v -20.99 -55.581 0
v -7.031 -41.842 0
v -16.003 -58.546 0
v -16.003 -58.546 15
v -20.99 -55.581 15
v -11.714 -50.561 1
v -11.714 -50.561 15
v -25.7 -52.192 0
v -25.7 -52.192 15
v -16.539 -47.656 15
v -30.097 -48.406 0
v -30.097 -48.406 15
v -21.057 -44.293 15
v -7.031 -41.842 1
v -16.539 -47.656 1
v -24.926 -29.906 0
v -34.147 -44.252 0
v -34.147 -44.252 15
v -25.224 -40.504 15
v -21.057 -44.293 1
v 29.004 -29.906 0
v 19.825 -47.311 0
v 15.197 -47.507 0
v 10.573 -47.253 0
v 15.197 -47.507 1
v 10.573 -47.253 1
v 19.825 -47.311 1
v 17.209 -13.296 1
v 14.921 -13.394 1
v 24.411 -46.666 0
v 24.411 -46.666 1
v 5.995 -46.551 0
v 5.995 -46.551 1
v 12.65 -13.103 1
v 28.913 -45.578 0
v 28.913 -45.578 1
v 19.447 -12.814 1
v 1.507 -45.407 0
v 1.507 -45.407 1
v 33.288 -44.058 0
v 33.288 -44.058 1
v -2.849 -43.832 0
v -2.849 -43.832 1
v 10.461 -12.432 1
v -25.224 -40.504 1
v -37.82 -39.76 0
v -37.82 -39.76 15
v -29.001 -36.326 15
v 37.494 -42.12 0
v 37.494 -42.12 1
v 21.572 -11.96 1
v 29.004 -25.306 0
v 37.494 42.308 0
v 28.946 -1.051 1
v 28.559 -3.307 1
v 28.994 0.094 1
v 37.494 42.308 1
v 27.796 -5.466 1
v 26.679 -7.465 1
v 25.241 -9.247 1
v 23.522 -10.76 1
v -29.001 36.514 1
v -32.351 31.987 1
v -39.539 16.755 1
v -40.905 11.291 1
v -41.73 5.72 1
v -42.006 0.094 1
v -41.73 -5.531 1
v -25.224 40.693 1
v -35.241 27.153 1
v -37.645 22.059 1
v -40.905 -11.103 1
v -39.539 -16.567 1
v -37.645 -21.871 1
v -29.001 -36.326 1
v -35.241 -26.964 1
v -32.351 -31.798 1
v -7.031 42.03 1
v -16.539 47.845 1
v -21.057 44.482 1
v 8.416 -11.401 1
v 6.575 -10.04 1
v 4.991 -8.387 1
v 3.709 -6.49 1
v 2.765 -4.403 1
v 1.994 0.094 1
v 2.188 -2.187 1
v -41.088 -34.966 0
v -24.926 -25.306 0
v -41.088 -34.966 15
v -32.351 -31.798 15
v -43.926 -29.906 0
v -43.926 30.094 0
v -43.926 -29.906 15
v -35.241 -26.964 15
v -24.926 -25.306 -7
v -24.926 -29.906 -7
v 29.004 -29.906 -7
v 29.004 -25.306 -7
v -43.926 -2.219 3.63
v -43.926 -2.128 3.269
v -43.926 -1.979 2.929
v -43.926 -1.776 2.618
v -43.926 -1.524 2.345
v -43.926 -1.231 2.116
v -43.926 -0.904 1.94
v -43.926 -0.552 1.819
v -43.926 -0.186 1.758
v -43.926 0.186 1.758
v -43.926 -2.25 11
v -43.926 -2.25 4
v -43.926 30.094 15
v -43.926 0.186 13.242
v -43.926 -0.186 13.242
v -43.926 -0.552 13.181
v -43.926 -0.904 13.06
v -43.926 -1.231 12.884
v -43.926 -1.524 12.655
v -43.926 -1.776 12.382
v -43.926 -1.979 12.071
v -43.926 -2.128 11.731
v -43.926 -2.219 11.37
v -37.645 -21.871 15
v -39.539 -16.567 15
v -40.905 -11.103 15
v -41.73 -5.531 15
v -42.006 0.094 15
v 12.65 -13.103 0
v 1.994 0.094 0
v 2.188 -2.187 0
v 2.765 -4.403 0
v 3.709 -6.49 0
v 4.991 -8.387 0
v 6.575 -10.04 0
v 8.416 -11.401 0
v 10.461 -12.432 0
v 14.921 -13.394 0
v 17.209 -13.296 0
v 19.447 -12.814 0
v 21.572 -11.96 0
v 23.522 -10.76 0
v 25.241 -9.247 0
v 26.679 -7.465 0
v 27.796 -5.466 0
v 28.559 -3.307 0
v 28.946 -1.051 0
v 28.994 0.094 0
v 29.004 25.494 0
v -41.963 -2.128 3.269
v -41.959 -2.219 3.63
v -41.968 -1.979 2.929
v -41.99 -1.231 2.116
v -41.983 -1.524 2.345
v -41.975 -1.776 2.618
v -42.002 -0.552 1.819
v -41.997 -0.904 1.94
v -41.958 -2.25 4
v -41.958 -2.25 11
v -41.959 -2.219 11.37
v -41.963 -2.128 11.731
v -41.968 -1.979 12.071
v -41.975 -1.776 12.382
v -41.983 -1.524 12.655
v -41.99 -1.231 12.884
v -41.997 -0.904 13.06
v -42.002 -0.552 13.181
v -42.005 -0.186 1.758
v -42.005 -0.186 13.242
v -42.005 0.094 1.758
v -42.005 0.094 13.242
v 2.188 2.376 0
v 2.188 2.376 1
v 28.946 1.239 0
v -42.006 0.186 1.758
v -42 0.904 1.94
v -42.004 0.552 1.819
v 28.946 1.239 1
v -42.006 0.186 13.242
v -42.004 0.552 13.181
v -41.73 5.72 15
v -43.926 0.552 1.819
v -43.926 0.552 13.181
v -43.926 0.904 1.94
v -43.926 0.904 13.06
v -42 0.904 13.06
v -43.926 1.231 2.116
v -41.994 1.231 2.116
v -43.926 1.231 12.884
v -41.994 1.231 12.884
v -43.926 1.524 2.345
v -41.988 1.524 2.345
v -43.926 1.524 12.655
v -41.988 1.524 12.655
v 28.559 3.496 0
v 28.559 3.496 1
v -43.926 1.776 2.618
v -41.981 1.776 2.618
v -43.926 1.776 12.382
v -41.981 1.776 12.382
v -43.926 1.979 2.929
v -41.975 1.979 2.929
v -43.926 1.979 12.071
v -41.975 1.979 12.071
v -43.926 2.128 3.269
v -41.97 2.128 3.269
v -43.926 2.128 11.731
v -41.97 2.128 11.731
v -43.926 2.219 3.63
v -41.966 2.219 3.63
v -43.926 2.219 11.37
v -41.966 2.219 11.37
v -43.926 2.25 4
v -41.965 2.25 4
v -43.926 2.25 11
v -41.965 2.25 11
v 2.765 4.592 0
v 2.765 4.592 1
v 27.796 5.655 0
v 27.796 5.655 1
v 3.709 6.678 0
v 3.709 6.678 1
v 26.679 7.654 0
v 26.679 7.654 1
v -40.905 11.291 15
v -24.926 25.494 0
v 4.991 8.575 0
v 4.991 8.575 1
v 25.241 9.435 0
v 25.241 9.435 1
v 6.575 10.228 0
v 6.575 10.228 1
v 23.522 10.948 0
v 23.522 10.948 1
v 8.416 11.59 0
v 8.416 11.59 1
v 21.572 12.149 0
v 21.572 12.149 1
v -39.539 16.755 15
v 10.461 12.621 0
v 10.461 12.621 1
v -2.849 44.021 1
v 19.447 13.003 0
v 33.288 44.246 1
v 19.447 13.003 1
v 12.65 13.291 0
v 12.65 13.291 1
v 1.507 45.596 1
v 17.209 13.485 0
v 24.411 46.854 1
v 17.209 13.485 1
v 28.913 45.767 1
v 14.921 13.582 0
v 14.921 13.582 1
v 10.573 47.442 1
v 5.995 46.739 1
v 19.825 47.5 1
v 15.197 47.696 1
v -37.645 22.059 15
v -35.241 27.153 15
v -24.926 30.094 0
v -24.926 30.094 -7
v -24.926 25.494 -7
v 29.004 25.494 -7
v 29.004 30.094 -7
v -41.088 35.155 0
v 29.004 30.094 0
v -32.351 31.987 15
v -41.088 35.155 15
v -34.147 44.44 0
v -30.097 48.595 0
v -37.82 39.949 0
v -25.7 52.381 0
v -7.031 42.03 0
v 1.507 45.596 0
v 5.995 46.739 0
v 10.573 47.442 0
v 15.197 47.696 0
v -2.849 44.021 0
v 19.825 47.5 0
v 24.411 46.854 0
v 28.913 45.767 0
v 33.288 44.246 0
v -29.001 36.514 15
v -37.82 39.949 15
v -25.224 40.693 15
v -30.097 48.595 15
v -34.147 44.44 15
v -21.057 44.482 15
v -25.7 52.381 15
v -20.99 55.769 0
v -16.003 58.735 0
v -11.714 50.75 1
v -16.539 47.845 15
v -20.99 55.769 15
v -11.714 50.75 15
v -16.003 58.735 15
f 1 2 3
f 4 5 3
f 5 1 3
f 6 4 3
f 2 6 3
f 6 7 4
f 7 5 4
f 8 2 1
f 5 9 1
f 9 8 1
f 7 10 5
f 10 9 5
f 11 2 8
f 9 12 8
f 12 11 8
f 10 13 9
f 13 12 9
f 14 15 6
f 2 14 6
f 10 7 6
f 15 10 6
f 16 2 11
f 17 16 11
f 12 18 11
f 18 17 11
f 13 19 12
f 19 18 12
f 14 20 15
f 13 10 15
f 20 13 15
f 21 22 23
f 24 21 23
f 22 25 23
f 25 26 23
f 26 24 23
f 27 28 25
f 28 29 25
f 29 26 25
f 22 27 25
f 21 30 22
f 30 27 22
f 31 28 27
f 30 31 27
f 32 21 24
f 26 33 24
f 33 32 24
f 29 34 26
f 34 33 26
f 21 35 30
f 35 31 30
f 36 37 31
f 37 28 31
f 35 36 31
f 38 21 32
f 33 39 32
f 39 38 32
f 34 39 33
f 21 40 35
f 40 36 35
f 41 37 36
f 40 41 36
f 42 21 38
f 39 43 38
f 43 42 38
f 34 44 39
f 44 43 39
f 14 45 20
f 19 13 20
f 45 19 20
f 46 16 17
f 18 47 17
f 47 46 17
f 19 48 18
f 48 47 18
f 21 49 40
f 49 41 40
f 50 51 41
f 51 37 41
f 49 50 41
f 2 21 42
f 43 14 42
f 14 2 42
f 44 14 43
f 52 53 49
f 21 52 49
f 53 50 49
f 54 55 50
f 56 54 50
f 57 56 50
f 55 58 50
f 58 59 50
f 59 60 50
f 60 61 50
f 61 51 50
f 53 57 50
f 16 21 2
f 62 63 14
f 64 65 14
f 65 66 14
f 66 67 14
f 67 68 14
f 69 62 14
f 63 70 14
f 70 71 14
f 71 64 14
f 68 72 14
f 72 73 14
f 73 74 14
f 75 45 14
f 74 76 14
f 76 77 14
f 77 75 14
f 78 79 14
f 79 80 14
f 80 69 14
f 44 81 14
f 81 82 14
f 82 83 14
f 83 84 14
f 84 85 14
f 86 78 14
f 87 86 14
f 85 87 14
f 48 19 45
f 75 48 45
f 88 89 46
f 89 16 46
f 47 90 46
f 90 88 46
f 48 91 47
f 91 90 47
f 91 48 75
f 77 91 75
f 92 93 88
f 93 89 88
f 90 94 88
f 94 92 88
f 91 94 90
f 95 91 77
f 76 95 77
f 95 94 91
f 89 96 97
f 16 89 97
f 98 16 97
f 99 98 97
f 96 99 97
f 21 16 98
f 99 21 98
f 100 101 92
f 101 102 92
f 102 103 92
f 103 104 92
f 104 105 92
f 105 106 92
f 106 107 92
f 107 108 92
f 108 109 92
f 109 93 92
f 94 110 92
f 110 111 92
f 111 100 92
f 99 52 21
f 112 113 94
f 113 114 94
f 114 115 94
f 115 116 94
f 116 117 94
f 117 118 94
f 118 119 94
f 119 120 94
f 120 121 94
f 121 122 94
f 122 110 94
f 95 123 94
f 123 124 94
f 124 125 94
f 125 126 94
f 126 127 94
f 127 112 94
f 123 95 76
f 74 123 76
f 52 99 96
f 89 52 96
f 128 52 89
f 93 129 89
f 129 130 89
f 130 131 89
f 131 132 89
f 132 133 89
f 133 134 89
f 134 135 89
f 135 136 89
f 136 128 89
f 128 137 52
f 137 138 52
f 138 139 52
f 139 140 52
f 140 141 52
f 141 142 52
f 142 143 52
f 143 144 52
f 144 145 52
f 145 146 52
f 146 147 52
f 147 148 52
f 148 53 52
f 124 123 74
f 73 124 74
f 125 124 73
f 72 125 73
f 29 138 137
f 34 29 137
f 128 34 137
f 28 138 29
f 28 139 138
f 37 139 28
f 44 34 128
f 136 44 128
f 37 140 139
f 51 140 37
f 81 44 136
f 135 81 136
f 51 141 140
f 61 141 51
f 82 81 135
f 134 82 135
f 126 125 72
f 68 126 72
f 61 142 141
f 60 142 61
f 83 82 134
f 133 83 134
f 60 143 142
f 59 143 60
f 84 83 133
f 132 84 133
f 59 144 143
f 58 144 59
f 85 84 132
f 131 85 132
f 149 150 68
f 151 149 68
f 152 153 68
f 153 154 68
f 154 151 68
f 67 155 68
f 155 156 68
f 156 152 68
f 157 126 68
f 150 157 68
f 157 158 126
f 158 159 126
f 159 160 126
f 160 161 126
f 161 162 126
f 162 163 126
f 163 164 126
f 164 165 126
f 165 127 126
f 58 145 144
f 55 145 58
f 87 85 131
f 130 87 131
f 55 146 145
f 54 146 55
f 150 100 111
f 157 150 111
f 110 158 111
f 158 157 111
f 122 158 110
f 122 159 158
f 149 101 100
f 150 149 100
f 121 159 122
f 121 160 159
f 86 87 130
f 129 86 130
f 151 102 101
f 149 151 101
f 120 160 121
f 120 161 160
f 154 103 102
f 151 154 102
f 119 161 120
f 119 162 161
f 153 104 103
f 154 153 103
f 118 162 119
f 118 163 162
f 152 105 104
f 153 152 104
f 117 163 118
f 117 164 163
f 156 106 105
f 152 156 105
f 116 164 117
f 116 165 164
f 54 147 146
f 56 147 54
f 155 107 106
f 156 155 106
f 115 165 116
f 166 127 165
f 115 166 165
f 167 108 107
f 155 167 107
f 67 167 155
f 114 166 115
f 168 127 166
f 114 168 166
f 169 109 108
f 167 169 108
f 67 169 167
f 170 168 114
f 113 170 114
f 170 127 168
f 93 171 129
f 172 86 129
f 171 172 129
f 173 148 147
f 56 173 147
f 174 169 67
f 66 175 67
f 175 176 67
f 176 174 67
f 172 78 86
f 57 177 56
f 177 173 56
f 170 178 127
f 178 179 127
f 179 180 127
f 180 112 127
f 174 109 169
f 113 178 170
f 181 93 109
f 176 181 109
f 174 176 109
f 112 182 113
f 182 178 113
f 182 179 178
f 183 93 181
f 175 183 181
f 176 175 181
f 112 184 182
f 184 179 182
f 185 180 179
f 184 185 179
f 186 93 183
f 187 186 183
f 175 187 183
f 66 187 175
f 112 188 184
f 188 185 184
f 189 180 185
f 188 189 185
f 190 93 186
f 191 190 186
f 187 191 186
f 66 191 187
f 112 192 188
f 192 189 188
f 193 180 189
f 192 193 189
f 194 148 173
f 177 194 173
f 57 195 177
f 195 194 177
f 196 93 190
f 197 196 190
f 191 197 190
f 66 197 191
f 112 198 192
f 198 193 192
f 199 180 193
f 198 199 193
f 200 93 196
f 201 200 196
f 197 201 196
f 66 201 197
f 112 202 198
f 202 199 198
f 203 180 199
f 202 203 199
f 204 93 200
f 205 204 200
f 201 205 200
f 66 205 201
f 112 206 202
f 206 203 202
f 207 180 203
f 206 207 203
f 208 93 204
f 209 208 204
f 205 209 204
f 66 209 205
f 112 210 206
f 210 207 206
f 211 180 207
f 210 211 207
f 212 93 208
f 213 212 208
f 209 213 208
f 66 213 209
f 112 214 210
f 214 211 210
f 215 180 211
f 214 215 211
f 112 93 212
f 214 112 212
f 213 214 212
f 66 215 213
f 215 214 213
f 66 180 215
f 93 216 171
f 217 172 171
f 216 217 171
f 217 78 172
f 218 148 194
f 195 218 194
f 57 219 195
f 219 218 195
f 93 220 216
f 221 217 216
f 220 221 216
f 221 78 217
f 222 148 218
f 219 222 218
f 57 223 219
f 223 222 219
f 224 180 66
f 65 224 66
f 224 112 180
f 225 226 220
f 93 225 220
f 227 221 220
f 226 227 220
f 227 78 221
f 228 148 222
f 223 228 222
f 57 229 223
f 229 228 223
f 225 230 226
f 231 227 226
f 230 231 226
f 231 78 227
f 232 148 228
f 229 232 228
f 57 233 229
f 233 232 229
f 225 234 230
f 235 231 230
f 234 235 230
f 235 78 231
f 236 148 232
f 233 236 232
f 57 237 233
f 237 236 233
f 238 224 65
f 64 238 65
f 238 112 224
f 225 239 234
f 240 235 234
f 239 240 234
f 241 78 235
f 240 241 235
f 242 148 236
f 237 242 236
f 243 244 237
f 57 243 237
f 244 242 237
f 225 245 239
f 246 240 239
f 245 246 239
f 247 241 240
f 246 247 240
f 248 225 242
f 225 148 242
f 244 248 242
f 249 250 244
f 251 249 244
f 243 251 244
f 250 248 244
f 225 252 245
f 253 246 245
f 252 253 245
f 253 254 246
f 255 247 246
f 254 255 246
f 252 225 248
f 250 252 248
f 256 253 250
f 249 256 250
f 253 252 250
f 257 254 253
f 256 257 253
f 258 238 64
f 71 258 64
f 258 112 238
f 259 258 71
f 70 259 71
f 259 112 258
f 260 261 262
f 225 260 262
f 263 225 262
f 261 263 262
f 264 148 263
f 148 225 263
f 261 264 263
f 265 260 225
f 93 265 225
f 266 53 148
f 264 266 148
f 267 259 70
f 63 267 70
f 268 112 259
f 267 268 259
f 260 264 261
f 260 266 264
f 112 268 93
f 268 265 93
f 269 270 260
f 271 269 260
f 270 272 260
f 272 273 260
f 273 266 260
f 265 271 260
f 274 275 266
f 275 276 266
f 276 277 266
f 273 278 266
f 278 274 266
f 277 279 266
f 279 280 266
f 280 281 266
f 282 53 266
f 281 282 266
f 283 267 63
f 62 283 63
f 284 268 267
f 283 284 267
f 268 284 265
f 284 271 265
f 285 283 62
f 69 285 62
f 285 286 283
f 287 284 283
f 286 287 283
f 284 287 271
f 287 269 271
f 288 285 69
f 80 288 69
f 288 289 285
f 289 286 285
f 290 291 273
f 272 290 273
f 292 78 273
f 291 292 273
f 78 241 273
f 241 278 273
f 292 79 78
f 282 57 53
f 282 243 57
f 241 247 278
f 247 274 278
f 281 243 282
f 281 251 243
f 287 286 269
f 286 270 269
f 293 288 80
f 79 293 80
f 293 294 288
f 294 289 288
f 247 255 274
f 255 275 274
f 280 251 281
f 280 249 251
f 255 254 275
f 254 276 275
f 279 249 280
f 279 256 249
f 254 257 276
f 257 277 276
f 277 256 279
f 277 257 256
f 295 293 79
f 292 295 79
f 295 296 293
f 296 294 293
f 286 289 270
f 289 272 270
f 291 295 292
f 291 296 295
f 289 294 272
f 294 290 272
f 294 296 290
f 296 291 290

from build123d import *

# Parameters (mm, degrees)
SKETCH1_W               = 62.4208
SKETCH1_H               = 60
SKETCH1_R               = 13.5
BOSS_EXTRUDE1_DEPTH     = 1
BOSS_EXTRUDE2_START     = -1
SKETCH2_W               = 53.9308
SKETCH2_H               = 4.6
BOSS_EXTRUDE2_DEPTH     = 7
BOSS_EXTRUDE3_DEPTH     = 14
BOSS_EXTRUDE4_DEPTH     = 1
CUT_EXTRUDE1_REACH      = 103.509
CUT_EXTRUDE1_END_RADIUS = 57.5


with BuildPart() as part:
    # Sketch1 → Boss-Extrude1 (new body)
    with BuildSketch(Plane.XY):
        with Locations((6.283906244, 0.094262462)):
            Rectangle(SKETCH1_W, SKETCH1_H)
        with Locations((15.494306244, 0.094262462)):
            Circle(SKETCH1_R, mode=Mode.SUBTRACT)
    extrude(amount=BOSS_EXTRUDE1_DEPTH)

    # Sketch2 → Boss-Extrude2 (add)
    with BuildSketch(Plane.XY.offset(1).offset(BOSS_EXTRUDE2_START)):
        with Locations((2.038906244, -27.605737538)):
            Rectangle(SKETCH2_W, SKETCH2_H)
        with Locations((2.038906244, 27.794262462)):
            Rectangle(SKETCH2_W, SKETCH2_H)
    extrude(amount=-BOSS_EXTRUDE2_DEPTH)



with BuildPart() as body_2:
    # Sketch3 → Boss-Extrude3 (new body)
    with BuildSketch(Plane.XY.offset(1)):
        with BuildLine():
            ThreePointArc((-33.559235932, 30.094262462), (-24.010484349, 41.87489817), (-11.714027053, 50.749534638))
            Line((-11.714027053, 50.749534638), (-16.003239131, 58.735000077))
            ThreePointArc((-16.003239131, 58.735000077), (-32.167096843, 46.561693298), (-43.926493756, 30.094262462))
            Line((-43.926493756, 30.094262462), (-33.559235932, 30.094262462))
        make_face()
        with BuildLine():
            Line((-43.926493756, -29.905737538), (-33.559235932, -29.905737538))
            ThreePointArc((-33.559235932, -29.905737538), (-42.005693756, 0.094262462), (-33.559235932, 30.094262462))
            Line((-33.559235932, 30.094262462), (-43.926493756, 30.094262462))
            Line((-43.926493756, 30.094262462), (-43.926493756, -29.905737538))
        make_face()
        with BuildLine():
            Line((-16.003239131, -58.546475153), (-11.714027053, -50.561009713))
            ThreePointArc((-11.714027053, -50.561009713), (-24.010484349, -41.686373246), (-33.559235932, -29.905737538))
            Line((-33.559235932, -29.905737538), (-43.926493756, -29.905737538))
            ThreePointArc((-43.926493756, -29.905737538), (-32.167096843, -46.373168373), (-16.003239131, -58.546475153))
        make_face()
    extrude(amount=BOSS_EXTRUDE3_DEPTH)


with BuildPart() as part_1:
    add(part.part)

    add(body_2.part)  # Boss-Extrude4 merges body 2
    # Sketch4 → Boss-Extrude4 (add)
    with BuildSketch(Plane.XY.offset(1)):
        with BuildLine():
            Line((37.494306244, -42.119641485), (37.494306244, -29.905737538))
            Line((37.494306244, -29.905737538), (-24.926493756, -29.905737538))
            Line((-24.926493756, -29.905737538), (-24.926493756, 30.094262462))
            Line((-24.926493756, 30.094262462), (37.494306244, 30.094262462))
            Line((37.494306244, 30.094262462), (37.494306244, 42.30816641))
            ThreePointArc((37.494306244, 42.30816641), (15.197309329, 47.696000659), (-7.030722747, 42.030365708))
            Line((-7.030722747, 42.030365708), (-16.003239131, 58.735000077))
            ThreePointArc((-16.003239131, 58.735000077), (-32.167096843, 46.561693298), (-43.926493756, 30.094262462))
            Line((-43.926493756, 30.094262462), (-43.926493756, -29.905737538))
            ThreePointArc((-43.926493756, -29.905737538), (-32.167096843, -46.373168373), (-16.003239131, -58.546475153))
            Line((-16.003239131, -58.546475153), (-7.030722747, -41.841840784))
            ThreePointArc((-7.030722747, -41.841840784), (15.197309329, -47.507475734), (37.494306244, -42.119641485))
        make_face()
    extrude(amount=-BOSS_EXTRUDE4_DEPTH)

    # Cut-Extrude1: up to this cylinder (the profile starts outside it)
    cut_extrude1_end = Plane(origin=(15.494306244, 0.094262462, 7.5), z_dir=(0, 0, -1)) * Cylinder(CUT_EXTRUDE1_END_RADIUS, 323.018, mode=Mode.PRIVATE)
    # Sketch5 → Cut-Extrude1 (cut, up to the surface)
    with BuildSketch(Plane.ZY.offset(43.926493756), mode=Mode.PRIVATE) as cut_extrude1_sk1:
        with BuildLine():
            Line((4, 2.25), (11, 2.25))
            ThreePointArc((11, 2.25), (13.25, 0), (11, -2.25))
            Line((11, -2.25), (4, -2.25))
            ThreePointArc((4, -2.25), (1.75, 0), (4, 2.25))
        make_face()
    cut_extrude1_tool1 = extrude(cut_extrude1_sk1.sketch, amount=-CUT_EXTRUDE1_REACH, mode=Mode.PRIVATE) - cut_extrude1_end
    add(cut_extrude1_tool1.solids().sort_by_distance((-43.926494, 0, 7.5))[0], mode=Mode.SUBTRACT)


solid = part_1.part
